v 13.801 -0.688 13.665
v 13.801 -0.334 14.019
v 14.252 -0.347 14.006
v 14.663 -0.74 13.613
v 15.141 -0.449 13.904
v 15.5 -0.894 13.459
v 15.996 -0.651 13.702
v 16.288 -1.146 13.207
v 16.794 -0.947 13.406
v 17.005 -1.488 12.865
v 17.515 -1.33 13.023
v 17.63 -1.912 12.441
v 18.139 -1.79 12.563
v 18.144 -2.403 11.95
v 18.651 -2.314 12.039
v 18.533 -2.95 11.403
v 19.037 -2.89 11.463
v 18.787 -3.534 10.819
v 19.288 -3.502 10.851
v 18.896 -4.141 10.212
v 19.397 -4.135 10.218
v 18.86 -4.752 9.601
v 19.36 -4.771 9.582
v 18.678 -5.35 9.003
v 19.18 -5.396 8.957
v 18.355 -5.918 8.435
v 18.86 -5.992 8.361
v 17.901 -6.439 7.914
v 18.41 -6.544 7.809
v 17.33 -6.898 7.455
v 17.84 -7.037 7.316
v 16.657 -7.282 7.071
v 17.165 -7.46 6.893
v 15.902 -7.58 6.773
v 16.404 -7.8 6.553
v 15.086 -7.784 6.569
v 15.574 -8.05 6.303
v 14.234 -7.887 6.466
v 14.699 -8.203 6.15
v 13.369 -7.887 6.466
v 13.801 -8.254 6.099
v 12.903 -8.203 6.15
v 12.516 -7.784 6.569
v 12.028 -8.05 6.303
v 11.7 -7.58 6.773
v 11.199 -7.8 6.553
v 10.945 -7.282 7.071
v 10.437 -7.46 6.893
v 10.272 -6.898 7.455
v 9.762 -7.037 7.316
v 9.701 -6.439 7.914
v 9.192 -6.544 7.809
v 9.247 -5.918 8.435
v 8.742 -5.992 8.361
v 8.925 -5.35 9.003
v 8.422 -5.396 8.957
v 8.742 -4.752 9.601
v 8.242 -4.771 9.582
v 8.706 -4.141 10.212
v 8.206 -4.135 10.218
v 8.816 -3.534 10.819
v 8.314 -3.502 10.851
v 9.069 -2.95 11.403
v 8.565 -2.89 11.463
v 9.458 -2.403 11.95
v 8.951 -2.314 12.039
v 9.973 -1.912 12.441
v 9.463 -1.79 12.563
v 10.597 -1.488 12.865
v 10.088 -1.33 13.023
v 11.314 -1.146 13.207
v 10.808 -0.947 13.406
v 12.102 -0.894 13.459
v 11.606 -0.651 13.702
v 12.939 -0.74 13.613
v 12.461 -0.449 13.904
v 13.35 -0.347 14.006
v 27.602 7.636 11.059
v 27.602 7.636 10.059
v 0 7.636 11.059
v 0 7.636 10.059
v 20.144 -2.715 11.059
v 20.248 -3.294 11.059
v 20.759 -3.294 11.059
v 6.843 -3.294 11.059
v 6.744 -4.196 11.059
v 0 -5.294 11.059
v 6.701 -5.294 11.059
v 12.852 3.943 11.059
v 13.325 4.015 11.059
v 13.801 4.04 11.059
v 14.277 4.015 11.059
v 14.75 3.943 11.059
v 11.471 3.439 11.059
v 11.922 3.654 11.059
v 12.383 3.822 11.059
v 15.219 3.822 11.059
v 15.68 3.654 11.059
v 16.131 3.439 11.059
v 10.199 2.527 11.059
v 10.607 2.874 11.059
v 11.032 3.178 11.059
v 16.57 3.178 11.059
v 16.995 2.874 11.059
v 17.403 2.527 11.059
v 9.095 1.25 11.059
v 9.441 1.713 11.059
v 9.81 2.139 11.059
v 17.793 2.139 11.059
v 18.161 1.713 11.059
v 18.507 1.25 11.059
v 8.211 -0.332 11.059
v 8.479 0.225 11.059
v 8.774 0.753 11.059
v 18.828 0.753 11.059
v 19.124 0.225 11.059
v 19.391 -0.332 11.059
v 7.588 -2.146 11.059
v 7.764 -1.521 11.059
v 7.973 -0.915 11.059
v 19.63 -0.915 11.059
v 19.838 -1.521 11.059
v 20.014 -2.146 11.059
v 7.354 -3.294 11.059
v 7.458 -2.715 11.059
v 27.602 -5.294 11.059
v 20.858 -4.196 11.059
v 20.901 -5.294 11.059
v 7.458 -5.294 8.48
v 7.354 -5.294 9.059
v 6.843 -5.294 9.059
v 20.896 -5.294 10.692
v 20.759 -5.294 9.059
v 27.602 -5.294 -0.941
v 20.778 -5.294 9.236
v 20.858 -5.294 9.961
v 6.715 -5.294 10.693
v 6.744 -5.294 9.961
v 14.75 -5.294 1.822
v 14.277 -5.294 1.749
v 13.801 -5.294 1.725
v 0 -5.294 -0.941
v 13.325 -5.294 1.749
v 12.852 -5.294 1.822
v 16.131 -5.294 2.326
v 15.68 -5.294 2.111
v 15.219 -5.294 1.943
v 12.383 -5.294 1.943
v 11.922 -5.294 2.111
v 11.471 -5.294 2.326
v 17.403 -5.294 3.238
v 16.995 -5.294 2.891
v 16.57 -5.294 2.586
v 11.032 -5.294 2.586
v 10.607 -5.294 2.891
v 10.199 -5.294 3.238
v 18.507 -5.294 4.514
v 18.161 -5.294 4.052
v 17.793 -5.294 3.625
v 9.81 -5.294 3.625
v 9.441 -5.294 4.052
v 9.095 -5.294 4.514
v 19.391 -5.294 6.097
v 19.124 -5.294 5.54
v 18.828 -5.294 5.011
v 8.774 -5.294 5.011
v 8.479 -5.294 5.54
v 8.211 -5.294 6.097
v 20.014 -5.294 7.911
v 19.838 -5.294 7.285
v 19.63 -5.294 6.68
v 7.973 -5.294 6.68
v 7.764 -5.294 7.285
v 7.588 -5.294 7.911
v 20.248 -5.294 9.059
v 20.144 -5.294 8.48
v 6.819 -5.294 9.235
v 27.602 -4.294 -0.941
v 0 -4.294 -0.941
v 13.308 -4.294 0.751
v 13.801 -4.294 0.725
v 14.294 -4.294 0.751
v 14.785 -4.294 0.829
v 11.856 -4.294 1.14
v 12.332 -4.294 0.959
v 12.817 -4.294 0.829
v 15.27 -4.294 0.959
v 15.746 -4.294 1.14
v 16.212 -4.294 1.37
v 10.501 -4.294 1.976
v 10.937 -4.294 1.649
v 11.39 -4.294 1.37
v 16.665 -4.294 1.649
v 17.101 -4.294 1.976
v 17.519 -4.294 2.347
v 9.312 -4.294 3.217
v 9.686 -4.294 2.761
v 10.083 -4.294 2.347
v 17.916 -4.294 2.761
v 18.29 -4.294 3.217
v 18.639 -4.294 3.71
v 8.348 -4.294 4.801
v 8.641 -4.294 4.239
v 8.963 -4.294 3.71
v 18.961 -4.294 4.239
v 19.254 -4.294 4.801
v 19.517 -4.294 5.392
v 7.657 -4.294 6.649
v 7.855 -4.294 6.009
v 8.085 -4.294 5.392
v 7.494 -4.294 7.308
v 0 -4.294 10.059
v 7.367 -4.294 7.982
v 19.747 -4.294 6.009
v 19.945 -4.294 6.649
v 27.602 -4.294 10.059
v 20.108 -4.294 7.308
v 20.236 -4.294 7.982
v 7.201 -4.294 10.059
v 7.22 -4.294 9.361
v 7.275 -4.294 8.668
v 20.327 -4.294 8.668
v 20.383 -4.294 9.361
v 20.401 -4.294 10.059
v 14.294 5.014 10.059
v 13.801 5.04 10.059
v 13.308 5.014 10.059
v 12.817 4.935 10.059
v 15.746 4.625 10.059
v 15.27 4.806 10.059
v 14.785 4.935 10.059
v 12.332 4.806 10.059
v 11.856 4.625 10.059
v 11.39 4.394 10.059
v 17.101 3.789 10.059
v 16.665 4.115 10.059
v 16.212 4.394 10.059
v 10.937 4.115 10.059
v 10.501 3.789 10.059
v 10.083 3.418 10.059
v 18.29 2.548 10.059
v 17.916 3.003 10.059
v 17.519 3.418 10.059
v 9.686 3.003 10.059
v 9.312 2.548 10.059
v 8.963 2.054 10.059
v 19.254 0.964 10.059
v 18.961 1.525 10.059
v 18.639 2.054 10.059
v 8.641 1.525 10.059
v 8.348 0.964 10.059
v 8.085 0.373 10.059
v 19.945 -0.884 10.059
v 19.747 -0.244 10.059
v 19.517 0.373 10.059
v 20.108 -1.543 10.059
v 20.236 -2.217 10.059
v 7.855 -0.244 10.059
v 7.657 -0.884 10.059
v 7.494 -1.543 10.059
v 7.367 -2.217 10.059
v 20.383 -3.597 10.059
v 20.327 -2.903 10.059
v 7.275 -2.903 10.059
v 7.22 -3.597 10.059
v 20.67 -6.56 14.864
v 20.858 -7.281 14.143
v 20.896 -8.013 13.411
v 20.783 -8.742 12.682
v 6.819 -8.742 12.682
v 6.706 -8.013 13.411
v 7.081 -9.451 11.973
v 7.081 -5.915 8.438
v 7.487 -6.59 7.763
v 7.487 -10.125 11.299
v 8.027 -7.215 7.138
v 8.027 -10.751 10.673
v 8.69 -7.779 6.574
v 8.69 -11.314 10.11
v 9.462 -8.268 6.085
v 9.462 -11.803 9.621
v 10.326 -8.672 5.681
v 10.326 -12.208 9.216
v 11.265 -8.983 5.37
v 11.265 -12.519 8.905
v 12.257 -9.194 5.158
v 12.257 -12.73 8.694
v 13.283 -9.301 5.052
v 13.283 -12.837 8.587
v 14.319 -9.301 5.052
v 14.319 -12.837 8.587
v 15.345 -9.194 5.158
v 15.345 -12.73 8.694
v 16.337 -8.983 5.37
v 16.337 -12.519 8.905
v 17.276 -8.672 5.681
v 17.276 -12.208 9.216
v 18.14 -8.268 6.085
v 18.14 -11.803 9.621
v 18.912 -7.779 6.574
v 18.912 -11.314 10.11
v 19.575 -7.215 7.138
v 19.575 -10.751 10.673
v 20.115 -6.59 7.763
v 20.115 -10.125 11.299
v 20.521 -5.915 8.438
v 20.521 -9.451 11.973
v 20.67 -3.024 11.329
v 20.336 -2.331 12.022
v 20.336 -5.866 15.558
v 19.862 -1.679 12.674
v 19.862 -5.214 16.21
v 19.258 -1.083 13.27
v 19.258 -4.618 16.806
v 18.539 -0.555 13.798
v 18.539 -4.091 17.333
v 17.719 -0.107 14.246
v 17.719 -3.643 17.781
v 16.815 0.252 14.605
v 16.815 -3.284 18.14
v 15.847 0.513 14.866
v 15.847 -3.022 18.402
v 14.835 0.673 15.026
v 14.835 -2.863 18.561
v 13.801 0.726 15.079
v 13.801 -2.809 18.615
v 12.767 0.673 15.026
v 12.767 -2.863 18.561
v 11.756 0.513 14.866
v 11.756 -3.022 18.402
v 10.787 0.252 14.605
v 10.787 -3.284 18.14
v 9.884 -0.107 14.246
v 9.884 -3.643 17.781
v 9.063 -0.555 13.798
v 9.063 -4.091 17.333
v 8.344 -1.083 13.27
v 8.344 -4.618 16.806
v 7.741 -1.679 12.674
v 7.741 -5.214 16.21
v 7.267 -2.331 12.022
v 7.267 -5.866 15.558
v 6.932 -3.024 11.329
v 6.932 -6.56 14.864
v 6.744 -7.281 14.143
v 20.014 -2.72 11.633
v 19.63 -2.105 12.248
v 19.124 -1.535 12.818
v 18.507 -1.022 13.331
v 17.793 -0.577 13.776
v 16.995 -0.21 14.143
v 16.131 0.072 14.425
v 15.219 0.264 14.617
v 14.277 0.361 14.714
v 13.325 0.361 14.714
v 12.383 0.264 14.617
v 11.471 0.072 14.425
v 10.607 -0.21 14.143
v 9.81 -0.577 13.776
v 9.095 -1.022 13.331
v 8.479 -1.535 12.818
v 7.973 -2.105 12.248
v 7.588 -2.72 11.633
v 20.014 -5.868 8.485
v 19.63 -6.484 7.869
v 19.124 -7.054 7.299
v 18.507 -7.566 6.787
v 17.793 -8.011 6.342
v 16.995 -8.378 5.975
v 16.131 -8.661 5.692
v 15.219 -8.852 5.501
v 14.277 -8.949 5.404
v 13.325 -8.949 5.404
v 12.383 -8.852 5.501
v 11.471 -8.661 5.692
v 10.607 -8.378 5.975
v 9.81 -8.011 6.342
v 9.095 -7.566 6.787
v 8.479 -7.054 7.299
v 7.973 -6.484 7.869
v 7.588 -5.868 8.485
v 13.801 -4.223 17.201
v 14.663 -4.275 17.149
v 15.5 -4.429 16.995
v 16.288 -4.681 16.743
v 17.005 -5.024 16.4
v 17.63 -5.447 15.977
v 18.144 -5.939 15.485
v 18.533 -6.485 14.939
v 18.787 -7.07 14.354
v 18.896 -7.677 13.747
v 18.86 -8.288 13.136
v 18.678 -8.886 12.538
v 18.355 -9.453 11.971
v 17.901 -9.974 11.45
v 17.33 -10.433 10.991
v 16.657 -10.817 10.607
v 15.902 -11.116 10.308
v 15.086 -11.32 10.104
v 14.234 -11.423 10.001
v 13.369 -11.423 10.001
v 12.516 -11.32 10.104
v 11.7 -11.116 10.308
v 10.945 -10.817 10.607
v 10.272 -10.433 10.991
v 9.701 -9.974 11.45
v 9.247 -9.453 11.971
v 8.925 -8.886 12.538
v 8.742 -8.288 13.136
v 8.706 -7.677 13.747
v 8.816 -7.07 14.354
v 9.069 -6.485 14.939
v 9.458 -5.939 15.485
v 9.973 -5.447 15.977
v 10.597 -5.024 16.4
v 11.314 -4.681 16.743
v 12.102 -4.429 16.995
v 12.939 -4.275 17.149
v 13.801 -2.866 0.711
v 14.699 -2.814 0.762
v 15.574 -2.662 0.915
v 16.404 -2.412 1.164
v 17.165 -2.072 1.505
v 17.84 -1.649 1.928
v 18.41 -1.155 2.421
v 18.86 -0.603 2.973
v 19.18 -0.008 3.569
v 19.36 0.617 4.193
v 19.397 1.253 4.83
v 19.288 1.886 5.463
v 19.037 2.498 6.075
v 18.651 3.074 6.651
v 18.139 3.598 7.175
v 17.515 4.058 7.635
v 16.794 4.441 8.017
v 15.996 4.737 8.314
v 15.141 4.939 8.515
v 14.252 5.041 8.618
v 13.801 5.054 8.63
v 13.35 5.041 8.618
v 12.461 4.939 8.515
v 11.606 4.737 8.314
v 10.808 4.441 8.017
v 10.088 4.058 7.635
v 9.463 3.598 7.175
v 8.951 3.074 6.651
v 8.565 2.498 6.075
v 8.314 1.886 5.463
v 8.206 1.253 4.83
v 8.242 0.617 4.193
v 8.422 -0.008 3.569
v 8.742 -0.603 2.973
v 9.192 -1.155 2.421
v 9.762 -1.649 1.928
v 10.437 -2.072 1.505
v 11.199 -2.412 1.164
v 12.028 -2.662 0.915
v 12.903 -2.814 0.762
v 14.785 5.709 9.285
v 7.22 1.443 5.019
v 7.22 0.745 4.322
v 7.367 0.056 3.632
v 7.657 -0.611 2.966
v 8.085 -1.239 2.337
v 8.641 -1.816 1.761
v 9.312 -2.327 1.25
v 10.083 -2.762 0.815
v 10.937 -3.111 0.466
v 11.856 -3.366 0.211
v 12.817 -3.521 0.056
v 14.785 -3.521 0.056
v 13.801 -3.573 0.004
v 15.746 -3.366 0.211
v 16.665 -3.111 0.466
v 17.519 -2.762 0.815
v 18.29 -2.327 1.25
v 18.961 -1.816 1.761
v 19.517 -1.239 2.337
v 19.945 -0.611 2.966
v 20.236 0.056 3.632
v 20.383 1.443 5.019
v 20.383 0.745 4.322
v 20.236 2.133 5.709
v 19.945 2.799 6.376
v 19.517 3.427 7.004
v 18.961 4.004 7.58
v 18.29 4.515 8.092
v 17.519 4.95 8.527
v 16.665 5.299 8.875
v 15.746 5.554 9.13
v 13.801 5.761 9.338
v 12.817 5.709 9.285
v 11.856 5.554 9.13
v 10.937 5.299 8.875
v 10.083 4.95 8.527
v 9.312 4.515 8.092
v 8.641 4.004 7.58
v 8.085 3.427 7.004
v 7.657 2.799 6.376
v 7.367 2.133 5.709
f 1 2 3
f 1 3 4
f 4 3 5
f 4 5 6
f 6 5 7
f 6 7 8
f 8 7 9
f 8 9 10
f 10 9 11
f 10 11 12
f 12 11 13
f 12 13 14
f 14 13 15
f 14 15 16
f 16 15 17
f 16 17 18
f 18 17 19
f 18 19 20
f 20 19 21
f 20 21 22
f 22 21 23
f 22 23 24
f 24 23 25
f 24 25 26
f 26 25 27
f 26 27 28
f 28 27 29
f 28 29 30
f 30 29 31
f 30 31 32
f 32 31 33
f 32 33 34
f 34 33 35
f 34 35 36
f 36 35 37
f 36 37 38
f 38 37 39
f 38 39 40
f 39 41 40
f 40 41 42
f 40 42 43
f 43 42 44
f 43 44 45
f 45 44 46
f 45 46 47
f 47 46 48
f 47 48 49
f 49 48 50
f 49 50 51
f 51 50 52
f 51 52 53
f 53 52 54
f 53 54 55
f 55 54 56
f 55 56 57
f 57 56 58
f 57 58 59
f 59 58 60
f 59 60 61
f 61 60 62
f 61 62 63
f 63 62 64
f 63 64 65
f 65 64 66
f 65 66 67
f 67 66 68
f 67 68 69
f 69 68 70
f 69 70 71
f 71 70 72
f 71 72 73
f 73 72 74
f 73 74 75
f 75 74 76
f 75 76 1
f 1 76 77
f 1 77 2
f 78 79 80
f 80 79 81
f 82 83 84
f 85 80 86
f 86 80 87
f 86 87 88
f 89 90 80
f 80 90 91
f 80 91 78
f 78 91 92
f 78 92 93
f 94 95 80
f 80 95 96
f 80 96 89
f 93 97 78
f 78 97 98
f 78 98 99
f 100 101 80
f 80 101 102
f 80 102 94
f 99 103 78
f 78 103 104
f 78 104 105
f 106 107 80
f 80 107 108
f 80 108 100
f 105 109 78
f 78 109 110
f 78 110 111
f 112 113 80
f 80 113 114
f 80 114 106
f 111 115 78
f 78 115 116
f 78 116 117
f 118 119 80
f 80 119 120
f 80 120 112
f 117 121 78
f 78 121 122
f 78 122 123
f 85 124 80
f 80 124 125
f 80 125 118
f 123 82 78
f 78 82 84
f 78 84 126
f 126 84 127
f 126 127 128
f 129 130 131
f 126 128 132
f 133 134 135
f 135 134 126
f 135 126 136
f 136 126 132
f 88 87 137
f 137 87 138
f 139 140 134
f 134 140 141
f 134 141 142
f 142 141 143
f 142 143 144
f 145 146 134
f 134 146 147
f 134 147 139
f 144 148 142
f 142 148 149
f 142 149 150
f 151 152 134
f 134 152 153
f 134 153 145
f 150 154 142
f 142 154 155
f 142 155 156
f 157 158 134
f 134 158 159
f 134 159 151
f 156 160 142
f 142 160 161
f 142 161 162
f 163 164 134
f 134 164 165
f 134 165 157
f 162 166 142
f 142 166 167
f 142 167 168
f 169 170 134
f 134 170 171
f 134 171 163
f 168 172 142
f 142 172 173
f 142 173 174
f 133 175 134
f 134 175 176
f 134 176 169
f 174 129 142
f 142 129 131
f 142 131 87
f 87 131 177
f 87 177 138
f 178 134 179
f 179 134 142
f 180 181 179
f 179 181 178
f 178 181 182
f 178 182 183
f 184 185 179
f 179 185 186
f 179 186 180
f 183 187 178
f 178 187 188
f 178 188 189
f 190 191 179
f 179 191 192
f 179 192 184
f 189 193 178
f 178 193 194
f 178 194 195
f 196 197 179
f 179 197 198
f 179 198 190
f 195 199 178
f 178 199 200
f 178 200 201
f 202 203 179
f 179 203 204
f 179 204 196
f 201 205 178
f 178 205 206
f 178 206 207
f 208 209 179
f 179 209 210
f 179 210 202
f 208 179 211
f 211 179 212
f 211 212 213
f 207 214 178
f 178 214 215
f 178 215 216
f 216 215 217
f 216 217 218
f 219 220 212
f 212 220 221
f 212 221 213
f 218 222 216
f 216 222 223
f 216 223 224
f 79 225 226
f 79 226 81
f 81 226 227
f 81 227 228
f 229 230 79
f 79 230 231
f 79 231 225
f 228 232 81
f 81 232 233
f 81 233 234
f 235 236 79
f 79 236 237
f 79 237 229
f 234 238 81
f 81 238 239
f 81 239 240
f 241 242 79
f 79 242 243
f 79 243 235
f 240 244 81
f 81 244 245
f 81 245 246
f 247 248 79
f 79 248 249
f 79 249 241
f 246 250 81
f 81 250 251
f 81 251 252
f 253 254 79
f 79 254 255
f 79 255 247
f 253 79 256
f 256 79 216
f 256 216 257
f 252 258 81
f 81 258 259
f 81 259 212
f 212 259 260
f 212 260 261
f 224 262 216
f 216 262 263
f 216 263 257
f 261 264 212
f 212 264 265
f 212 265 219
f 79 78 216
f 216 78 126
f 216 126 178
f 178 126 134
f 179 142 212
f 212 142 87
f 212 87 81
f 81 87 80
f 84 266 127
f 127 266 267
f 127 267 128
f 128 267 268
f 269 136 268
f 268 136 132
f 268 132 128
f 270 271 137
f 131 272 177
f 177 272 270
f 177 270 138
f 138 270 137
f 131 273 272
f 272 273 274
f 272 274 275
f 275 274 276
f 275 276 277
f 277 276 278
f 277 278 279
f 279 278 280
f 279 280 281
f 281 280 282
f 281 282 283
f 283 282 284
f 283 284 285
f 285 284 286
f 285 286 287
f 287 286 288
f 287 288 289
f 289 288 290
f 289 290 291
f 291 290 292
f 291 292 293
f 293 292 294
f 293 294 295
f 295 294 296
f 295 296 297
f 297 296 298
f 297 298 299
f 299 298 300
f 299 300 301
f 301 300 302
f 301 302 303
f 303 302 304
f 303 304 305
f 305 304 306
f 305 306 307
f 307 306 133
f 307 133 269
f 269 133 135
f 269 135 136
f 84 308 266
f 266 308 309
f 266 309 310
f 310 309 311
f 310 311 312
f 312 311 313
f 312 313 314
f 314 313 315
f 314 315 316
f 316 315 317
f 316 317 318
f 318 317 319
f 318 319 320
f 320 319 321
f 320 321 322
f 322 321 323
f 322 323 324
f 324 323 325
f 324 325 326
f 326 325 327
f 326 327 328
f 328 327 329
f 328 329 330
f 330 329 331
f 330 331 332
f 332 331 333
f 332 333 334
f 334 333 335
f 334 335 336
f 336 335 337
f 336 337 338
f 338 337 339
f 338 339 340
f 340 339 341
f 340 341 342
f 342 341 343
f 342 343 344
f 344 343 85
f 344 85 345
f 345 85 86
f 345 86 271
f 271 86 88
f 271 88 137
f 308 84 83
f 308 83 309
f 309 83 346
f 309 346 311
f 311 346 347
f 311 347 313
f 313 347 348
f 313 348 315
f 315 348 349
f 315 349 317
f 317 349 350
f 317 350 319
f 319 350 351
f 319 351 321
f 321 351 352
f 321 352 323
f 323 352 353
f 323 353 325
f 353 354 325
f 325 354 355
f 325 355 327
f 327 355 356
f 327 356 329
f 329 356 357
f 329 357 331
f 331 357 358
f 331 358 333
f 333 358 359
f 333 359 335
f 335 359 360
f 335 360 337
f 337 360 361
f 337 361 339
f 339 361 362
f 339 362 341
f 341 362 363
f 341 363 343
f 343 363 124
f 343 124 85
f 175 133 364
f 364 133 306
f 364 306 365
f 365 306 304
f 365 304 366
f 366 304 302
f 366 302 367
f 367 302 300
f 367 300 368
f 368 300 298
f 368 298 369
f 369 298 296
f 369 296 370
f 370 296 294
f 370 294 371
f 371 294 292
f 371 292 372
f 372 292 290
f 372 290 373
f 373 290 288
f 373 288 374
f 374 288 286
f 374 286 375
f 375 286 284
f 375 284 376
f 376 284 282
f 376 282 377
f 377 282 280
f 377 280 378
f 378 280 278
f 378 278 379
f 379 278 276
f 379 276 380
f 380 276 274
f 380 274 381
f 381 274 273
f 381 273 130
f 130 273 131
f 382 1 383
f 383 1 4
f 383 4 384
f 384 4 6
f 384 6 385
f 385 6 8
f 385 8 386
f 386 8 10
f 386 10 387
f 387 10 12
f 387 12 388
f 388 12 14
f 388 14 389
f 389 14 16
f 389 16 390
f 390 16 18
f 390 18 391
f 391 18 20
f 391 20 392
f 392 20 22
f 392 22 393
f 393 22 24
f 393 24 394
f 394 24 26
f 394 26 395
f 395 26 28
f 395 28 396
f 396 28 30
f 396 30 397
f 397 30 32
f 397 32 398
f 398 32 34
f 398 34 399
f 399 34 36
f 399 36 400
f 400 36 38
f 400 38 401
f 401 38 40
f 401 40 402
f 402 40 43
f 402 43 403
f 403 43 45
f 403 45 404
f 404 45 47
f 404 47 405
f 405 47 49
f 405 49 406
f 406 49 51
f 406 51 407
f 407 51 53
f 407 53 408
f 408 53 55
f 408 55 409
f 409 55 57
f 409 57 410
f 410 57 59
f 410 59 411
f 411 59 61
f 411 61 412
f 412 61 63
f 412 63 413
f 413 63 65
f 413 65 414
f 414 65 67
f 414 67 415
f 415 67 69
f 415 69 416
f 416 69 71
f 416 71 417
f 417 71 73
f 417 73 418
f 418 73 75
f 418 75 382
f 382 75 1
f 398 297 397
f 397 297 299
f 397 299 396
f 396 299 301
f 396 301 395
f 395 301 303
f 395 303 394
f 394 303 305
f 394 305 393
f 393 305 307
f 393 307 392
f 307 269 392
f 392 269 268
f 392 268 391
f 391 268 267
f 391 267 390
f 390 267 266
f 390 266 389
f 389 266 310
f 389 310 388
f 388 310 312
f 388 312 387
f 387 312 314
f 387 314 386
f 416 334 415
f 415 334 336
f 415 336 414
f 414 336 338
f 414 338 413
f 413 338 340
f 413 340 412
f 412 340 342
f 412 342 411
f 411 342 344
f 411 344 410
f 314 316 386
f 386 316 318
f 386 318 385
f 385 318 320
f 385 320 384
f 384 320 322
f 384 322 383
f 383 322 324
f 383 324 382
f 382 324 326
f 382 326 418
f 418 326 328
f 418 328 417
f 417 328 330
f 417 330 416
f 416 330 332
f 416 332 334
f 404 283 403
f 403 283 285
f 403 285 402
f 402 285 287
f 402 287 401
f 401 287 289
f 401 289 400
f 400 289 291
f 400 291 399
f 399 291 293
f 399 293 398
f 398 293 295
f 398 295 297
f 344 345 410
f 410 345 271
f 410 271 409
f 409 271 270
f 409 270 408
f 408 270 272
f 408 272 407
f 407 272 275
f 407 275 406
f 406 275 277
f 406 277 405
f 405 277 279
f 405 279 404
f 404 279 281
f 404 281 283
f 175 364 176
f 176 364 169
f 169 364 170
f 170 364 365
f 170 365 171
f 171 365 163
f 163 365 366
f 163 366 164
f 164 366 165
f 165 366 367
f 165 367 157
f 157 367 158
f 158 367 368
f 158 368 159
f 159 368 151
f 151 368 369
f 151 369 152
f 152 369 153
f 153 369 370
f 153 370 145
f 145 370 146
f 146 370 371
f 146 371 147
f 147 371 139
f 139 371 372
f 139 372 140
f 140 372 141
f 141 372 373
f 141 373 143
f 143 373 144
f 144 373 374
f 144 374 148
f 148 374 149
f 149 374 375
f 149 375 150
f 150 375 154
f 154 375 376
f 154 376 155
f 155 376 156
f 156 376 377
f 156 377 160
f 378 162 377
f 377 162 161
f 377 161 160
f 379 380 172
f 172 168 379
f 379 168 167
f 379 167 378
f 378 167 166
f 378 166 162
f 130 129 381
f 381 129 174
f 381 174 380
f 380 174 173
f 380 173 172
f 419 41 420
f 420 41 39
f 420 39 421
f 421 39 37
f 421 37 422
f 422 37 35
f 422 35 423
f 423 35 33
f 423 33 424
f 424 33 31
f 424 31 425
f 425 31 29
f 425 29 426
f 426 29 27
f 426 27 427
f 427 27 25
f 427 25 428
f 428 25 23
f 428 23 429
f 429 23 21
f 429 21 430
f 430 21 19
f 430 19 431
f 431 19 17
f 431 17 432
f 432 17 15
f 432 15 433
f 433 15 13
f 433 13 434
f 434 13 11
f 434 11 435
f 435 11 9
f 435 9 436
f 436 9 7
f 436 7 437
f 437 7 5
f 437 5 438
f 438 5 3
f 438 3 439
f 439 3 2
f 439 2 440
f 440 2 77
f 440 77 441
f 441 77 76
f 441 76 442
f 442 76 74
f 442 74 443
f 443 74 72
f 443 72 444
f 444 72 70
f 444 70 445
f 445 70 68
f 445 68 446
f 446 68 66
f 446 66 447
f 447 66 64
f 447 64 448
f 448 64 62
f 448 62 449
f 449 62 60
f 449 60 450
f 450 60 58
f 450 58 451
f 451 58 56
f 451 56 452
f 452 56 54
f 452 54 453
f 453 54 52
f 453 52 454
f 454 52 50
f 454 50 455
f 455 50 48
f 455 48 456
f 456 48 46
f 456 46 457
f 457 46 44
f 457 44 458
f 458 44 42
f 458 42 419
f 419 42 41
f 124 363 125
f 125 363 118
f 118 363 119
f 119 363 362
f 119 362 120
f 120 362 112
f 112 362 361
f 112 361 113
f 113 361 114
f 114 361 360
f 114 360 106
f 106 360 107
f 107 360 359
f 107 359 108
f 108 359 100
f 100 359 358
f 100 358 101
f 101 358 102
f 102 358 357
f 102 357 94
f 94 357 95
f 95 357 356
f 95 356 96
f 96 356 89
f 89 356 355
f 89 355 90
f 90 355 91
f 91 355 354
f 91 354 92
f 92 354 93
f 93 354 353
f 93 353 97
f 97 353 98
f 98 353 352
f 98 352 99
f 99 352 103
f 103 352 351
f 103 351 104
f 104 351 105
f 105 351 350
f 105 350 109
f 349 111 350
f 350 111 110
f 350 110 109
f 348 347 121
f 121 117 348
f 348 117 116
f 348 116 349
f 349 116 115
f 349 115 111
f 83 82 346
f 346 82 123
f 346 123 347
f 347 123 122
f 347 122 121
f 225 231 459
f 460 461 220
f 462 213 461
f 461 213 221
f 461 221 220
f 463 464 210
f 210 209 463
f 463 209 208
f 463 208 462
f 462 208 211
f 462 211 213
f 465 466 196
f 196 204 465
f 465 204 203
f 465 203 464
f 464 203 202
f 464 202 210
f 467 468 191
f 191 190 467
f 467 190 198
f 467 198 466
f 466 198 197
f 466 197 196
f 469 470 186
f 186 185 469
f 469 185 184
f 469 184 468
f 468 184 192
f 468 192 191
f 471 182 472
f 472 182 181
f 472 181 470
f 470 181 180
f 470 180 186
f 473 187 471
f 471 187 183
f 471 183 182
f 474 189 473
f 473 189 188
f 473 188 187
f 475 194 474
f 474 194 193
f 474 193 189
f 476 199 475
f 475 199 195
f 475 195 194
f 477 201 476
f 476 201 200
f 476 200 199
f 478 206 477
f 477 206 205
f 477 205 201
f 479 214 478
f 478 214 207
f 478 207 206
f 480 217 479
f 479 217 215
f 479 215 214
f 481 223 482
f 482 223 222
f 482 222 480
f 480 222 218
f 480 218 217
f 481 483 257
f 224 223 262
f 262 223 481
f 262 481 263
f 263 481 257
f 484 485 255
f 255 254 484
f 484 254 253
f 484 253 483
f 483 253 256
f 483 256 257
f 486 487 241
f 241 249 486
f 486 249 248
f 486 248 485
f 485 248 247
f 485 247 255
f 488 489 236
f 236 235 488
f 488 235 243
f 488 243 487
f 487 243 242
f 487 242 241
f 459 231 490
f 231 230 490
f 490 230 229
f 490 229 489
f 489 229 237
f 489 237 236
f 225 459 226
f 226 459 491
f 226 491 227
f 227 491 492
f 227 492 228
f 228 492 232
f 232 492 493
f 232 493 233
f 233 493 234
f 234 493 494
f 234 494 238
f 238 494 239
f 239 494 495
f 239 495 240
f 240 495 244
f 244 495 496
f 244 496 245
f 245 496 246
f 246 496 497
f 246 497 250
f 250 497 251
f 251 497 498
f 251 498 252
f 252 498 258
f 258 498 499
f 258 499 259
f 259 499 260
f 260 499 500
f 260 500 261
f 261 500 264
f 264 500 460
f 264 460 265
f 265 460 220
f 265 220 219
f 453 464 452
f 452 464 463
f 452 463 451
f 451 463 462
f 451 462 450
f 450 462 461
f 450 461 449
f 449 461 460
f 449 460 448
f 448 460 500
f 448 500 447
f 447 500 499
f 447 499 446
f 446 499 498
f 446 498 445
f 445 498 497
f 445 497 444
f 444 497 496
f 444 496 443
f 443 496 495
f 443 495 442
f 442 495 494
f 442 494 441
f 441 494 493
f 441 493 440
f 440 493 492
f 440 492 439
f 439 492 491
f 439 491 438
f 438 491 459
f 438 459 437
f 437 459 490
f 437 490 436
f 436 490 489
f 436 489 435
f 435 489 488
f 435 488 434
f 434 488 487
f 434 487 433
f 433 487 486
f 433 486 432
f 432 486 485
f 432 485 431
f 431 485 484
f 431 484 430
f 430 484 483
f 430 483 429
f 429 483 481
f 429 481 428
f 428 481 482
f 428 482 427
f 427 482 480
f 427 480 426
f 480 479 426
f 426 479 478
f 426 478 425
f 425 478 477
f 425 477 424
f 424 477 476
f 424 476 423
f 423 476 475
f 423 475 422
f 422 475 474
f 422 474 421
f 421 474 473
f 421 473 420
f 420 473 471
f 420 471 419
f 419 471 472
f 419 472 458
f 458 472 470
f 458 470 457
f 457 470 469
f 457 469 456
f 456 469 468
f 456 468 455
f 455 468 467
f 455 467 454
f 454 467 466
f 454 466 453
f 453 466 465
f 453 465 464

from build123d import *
from build123d.topology import SkipClean

# Parameters (mm, degrees)
BOSS_EXTRUDE1_DEPTH = 27.60218
SKETCH3_R           = 7.1
SKETCH3_R_2         = 5.1
BOSS_EXTRUDE2_DEPTH = 5
SKETCH4_R           = 6.6
SKETCH4_R_2         = 5.6
BOSS_EXTRUDE3_DEPTH = 7.62
CUT_EXTRUDE1_START  = -7.62
SKETCH5_R           = 5.6
CUT_EXTRUDE1_DEPTH  = 7.62
SKETCH6_R           = 5.1
CUT_EXTRUDE2_DEPTH  = 19.05


with BuildPart() as part:
    # Sketch1 → Boss-Extrude1 (new body)
    with BuildSketch(Plane(origin=(0, 0, 0), x_dir=(0, 0, -1), z_dir=(1, 0, 0))):
        Polygon((-11.058823529, 7.635882353), (-11.058823529, -5.294117647), (0.941176471, -5.294117647), (0.941176471, -4.294117647), (-10.058823529, -4.294117647), (-10.058823529, 7.635882353), align=None)
    extrude(amount=BOSS_EXTRUDE1_DEPTH)

    # Sketch3 → Boss-Extrude2 (add)
    with BuildSketch(Plane(origin=(0, -7.176470588, 7.176470588), x_dir=(-1, 0, 0), z_dir=(0, 0.7071067811865465, -0.7071067811865487))):
        with Locations((-13.80109, 4.076262621)):
            Circle(SKETCH3_R)
        with Locations((-13.80109, 4.076262621)):
            Circle(SKETCH3_R_2, mode=Mode.SUBTRACT)
    extrude(amount=-BOSS_EXTRUDE2_DEPTH)

    # Sketch4 → Boss-Extrude3 (add)
    with BuildSketch(Plane(origin=(0, -7.176470588, 7.176470588), x_dir=(-1, 0, 0), z_dir=(0, 0.7071067811865465, -0.7071067811865487))):
        with Locations((-13.80109, 4.076262621)):
            Circle(SKETCH4_R)
        with Locations((-13.80109, 4.076262621)):
            Circle(SKETCH4_R_2, mode=Mode.SUBTRACT)
    extrude(amount=BOSS_EXTRUDE3_DEPTH)

    # Sketch5 → Cut-Extrude1 (cut)
    with SkipClean():  # the faces are left unmerged after this step: merging them gives an invalid solid
        with BuildSketch(Plane(origin=(0, -1.788316916, 1.788316916), x_dir=(1, 0, 0), z_dir=(0, 0.7071067811865465, -0.7071067811865486)).offset(CUT_EXTRUDE1_START)):
            with Locations((13.80109, -4.076262621)):
                Circle(SKETCH5_R)
        extrude(amount=CUT_EXTRUDE1_DEPTH, mode=Mode.SUBTRACT)

    # Sketch6 → Cut-Extrude2 (cut)
    with SkipClean():  # the faces are left unmerged after this step: merging them gives an invalid solid
        with BuildSketch(Plane(origin=(0, -1.788316916, 1.788316916), x_dir=(1, 0, 0), z_dir=(0, 0.7071067811865465, -0.7071067811865486))):
            with Locations((13.80109, -4.076262621)):
                Circle(SKETCH6_R)
        extrude(amount=-CUT_EXTRUDE2_DEPTH, mode=Mode.SUBTRACT)


solid = part.part
